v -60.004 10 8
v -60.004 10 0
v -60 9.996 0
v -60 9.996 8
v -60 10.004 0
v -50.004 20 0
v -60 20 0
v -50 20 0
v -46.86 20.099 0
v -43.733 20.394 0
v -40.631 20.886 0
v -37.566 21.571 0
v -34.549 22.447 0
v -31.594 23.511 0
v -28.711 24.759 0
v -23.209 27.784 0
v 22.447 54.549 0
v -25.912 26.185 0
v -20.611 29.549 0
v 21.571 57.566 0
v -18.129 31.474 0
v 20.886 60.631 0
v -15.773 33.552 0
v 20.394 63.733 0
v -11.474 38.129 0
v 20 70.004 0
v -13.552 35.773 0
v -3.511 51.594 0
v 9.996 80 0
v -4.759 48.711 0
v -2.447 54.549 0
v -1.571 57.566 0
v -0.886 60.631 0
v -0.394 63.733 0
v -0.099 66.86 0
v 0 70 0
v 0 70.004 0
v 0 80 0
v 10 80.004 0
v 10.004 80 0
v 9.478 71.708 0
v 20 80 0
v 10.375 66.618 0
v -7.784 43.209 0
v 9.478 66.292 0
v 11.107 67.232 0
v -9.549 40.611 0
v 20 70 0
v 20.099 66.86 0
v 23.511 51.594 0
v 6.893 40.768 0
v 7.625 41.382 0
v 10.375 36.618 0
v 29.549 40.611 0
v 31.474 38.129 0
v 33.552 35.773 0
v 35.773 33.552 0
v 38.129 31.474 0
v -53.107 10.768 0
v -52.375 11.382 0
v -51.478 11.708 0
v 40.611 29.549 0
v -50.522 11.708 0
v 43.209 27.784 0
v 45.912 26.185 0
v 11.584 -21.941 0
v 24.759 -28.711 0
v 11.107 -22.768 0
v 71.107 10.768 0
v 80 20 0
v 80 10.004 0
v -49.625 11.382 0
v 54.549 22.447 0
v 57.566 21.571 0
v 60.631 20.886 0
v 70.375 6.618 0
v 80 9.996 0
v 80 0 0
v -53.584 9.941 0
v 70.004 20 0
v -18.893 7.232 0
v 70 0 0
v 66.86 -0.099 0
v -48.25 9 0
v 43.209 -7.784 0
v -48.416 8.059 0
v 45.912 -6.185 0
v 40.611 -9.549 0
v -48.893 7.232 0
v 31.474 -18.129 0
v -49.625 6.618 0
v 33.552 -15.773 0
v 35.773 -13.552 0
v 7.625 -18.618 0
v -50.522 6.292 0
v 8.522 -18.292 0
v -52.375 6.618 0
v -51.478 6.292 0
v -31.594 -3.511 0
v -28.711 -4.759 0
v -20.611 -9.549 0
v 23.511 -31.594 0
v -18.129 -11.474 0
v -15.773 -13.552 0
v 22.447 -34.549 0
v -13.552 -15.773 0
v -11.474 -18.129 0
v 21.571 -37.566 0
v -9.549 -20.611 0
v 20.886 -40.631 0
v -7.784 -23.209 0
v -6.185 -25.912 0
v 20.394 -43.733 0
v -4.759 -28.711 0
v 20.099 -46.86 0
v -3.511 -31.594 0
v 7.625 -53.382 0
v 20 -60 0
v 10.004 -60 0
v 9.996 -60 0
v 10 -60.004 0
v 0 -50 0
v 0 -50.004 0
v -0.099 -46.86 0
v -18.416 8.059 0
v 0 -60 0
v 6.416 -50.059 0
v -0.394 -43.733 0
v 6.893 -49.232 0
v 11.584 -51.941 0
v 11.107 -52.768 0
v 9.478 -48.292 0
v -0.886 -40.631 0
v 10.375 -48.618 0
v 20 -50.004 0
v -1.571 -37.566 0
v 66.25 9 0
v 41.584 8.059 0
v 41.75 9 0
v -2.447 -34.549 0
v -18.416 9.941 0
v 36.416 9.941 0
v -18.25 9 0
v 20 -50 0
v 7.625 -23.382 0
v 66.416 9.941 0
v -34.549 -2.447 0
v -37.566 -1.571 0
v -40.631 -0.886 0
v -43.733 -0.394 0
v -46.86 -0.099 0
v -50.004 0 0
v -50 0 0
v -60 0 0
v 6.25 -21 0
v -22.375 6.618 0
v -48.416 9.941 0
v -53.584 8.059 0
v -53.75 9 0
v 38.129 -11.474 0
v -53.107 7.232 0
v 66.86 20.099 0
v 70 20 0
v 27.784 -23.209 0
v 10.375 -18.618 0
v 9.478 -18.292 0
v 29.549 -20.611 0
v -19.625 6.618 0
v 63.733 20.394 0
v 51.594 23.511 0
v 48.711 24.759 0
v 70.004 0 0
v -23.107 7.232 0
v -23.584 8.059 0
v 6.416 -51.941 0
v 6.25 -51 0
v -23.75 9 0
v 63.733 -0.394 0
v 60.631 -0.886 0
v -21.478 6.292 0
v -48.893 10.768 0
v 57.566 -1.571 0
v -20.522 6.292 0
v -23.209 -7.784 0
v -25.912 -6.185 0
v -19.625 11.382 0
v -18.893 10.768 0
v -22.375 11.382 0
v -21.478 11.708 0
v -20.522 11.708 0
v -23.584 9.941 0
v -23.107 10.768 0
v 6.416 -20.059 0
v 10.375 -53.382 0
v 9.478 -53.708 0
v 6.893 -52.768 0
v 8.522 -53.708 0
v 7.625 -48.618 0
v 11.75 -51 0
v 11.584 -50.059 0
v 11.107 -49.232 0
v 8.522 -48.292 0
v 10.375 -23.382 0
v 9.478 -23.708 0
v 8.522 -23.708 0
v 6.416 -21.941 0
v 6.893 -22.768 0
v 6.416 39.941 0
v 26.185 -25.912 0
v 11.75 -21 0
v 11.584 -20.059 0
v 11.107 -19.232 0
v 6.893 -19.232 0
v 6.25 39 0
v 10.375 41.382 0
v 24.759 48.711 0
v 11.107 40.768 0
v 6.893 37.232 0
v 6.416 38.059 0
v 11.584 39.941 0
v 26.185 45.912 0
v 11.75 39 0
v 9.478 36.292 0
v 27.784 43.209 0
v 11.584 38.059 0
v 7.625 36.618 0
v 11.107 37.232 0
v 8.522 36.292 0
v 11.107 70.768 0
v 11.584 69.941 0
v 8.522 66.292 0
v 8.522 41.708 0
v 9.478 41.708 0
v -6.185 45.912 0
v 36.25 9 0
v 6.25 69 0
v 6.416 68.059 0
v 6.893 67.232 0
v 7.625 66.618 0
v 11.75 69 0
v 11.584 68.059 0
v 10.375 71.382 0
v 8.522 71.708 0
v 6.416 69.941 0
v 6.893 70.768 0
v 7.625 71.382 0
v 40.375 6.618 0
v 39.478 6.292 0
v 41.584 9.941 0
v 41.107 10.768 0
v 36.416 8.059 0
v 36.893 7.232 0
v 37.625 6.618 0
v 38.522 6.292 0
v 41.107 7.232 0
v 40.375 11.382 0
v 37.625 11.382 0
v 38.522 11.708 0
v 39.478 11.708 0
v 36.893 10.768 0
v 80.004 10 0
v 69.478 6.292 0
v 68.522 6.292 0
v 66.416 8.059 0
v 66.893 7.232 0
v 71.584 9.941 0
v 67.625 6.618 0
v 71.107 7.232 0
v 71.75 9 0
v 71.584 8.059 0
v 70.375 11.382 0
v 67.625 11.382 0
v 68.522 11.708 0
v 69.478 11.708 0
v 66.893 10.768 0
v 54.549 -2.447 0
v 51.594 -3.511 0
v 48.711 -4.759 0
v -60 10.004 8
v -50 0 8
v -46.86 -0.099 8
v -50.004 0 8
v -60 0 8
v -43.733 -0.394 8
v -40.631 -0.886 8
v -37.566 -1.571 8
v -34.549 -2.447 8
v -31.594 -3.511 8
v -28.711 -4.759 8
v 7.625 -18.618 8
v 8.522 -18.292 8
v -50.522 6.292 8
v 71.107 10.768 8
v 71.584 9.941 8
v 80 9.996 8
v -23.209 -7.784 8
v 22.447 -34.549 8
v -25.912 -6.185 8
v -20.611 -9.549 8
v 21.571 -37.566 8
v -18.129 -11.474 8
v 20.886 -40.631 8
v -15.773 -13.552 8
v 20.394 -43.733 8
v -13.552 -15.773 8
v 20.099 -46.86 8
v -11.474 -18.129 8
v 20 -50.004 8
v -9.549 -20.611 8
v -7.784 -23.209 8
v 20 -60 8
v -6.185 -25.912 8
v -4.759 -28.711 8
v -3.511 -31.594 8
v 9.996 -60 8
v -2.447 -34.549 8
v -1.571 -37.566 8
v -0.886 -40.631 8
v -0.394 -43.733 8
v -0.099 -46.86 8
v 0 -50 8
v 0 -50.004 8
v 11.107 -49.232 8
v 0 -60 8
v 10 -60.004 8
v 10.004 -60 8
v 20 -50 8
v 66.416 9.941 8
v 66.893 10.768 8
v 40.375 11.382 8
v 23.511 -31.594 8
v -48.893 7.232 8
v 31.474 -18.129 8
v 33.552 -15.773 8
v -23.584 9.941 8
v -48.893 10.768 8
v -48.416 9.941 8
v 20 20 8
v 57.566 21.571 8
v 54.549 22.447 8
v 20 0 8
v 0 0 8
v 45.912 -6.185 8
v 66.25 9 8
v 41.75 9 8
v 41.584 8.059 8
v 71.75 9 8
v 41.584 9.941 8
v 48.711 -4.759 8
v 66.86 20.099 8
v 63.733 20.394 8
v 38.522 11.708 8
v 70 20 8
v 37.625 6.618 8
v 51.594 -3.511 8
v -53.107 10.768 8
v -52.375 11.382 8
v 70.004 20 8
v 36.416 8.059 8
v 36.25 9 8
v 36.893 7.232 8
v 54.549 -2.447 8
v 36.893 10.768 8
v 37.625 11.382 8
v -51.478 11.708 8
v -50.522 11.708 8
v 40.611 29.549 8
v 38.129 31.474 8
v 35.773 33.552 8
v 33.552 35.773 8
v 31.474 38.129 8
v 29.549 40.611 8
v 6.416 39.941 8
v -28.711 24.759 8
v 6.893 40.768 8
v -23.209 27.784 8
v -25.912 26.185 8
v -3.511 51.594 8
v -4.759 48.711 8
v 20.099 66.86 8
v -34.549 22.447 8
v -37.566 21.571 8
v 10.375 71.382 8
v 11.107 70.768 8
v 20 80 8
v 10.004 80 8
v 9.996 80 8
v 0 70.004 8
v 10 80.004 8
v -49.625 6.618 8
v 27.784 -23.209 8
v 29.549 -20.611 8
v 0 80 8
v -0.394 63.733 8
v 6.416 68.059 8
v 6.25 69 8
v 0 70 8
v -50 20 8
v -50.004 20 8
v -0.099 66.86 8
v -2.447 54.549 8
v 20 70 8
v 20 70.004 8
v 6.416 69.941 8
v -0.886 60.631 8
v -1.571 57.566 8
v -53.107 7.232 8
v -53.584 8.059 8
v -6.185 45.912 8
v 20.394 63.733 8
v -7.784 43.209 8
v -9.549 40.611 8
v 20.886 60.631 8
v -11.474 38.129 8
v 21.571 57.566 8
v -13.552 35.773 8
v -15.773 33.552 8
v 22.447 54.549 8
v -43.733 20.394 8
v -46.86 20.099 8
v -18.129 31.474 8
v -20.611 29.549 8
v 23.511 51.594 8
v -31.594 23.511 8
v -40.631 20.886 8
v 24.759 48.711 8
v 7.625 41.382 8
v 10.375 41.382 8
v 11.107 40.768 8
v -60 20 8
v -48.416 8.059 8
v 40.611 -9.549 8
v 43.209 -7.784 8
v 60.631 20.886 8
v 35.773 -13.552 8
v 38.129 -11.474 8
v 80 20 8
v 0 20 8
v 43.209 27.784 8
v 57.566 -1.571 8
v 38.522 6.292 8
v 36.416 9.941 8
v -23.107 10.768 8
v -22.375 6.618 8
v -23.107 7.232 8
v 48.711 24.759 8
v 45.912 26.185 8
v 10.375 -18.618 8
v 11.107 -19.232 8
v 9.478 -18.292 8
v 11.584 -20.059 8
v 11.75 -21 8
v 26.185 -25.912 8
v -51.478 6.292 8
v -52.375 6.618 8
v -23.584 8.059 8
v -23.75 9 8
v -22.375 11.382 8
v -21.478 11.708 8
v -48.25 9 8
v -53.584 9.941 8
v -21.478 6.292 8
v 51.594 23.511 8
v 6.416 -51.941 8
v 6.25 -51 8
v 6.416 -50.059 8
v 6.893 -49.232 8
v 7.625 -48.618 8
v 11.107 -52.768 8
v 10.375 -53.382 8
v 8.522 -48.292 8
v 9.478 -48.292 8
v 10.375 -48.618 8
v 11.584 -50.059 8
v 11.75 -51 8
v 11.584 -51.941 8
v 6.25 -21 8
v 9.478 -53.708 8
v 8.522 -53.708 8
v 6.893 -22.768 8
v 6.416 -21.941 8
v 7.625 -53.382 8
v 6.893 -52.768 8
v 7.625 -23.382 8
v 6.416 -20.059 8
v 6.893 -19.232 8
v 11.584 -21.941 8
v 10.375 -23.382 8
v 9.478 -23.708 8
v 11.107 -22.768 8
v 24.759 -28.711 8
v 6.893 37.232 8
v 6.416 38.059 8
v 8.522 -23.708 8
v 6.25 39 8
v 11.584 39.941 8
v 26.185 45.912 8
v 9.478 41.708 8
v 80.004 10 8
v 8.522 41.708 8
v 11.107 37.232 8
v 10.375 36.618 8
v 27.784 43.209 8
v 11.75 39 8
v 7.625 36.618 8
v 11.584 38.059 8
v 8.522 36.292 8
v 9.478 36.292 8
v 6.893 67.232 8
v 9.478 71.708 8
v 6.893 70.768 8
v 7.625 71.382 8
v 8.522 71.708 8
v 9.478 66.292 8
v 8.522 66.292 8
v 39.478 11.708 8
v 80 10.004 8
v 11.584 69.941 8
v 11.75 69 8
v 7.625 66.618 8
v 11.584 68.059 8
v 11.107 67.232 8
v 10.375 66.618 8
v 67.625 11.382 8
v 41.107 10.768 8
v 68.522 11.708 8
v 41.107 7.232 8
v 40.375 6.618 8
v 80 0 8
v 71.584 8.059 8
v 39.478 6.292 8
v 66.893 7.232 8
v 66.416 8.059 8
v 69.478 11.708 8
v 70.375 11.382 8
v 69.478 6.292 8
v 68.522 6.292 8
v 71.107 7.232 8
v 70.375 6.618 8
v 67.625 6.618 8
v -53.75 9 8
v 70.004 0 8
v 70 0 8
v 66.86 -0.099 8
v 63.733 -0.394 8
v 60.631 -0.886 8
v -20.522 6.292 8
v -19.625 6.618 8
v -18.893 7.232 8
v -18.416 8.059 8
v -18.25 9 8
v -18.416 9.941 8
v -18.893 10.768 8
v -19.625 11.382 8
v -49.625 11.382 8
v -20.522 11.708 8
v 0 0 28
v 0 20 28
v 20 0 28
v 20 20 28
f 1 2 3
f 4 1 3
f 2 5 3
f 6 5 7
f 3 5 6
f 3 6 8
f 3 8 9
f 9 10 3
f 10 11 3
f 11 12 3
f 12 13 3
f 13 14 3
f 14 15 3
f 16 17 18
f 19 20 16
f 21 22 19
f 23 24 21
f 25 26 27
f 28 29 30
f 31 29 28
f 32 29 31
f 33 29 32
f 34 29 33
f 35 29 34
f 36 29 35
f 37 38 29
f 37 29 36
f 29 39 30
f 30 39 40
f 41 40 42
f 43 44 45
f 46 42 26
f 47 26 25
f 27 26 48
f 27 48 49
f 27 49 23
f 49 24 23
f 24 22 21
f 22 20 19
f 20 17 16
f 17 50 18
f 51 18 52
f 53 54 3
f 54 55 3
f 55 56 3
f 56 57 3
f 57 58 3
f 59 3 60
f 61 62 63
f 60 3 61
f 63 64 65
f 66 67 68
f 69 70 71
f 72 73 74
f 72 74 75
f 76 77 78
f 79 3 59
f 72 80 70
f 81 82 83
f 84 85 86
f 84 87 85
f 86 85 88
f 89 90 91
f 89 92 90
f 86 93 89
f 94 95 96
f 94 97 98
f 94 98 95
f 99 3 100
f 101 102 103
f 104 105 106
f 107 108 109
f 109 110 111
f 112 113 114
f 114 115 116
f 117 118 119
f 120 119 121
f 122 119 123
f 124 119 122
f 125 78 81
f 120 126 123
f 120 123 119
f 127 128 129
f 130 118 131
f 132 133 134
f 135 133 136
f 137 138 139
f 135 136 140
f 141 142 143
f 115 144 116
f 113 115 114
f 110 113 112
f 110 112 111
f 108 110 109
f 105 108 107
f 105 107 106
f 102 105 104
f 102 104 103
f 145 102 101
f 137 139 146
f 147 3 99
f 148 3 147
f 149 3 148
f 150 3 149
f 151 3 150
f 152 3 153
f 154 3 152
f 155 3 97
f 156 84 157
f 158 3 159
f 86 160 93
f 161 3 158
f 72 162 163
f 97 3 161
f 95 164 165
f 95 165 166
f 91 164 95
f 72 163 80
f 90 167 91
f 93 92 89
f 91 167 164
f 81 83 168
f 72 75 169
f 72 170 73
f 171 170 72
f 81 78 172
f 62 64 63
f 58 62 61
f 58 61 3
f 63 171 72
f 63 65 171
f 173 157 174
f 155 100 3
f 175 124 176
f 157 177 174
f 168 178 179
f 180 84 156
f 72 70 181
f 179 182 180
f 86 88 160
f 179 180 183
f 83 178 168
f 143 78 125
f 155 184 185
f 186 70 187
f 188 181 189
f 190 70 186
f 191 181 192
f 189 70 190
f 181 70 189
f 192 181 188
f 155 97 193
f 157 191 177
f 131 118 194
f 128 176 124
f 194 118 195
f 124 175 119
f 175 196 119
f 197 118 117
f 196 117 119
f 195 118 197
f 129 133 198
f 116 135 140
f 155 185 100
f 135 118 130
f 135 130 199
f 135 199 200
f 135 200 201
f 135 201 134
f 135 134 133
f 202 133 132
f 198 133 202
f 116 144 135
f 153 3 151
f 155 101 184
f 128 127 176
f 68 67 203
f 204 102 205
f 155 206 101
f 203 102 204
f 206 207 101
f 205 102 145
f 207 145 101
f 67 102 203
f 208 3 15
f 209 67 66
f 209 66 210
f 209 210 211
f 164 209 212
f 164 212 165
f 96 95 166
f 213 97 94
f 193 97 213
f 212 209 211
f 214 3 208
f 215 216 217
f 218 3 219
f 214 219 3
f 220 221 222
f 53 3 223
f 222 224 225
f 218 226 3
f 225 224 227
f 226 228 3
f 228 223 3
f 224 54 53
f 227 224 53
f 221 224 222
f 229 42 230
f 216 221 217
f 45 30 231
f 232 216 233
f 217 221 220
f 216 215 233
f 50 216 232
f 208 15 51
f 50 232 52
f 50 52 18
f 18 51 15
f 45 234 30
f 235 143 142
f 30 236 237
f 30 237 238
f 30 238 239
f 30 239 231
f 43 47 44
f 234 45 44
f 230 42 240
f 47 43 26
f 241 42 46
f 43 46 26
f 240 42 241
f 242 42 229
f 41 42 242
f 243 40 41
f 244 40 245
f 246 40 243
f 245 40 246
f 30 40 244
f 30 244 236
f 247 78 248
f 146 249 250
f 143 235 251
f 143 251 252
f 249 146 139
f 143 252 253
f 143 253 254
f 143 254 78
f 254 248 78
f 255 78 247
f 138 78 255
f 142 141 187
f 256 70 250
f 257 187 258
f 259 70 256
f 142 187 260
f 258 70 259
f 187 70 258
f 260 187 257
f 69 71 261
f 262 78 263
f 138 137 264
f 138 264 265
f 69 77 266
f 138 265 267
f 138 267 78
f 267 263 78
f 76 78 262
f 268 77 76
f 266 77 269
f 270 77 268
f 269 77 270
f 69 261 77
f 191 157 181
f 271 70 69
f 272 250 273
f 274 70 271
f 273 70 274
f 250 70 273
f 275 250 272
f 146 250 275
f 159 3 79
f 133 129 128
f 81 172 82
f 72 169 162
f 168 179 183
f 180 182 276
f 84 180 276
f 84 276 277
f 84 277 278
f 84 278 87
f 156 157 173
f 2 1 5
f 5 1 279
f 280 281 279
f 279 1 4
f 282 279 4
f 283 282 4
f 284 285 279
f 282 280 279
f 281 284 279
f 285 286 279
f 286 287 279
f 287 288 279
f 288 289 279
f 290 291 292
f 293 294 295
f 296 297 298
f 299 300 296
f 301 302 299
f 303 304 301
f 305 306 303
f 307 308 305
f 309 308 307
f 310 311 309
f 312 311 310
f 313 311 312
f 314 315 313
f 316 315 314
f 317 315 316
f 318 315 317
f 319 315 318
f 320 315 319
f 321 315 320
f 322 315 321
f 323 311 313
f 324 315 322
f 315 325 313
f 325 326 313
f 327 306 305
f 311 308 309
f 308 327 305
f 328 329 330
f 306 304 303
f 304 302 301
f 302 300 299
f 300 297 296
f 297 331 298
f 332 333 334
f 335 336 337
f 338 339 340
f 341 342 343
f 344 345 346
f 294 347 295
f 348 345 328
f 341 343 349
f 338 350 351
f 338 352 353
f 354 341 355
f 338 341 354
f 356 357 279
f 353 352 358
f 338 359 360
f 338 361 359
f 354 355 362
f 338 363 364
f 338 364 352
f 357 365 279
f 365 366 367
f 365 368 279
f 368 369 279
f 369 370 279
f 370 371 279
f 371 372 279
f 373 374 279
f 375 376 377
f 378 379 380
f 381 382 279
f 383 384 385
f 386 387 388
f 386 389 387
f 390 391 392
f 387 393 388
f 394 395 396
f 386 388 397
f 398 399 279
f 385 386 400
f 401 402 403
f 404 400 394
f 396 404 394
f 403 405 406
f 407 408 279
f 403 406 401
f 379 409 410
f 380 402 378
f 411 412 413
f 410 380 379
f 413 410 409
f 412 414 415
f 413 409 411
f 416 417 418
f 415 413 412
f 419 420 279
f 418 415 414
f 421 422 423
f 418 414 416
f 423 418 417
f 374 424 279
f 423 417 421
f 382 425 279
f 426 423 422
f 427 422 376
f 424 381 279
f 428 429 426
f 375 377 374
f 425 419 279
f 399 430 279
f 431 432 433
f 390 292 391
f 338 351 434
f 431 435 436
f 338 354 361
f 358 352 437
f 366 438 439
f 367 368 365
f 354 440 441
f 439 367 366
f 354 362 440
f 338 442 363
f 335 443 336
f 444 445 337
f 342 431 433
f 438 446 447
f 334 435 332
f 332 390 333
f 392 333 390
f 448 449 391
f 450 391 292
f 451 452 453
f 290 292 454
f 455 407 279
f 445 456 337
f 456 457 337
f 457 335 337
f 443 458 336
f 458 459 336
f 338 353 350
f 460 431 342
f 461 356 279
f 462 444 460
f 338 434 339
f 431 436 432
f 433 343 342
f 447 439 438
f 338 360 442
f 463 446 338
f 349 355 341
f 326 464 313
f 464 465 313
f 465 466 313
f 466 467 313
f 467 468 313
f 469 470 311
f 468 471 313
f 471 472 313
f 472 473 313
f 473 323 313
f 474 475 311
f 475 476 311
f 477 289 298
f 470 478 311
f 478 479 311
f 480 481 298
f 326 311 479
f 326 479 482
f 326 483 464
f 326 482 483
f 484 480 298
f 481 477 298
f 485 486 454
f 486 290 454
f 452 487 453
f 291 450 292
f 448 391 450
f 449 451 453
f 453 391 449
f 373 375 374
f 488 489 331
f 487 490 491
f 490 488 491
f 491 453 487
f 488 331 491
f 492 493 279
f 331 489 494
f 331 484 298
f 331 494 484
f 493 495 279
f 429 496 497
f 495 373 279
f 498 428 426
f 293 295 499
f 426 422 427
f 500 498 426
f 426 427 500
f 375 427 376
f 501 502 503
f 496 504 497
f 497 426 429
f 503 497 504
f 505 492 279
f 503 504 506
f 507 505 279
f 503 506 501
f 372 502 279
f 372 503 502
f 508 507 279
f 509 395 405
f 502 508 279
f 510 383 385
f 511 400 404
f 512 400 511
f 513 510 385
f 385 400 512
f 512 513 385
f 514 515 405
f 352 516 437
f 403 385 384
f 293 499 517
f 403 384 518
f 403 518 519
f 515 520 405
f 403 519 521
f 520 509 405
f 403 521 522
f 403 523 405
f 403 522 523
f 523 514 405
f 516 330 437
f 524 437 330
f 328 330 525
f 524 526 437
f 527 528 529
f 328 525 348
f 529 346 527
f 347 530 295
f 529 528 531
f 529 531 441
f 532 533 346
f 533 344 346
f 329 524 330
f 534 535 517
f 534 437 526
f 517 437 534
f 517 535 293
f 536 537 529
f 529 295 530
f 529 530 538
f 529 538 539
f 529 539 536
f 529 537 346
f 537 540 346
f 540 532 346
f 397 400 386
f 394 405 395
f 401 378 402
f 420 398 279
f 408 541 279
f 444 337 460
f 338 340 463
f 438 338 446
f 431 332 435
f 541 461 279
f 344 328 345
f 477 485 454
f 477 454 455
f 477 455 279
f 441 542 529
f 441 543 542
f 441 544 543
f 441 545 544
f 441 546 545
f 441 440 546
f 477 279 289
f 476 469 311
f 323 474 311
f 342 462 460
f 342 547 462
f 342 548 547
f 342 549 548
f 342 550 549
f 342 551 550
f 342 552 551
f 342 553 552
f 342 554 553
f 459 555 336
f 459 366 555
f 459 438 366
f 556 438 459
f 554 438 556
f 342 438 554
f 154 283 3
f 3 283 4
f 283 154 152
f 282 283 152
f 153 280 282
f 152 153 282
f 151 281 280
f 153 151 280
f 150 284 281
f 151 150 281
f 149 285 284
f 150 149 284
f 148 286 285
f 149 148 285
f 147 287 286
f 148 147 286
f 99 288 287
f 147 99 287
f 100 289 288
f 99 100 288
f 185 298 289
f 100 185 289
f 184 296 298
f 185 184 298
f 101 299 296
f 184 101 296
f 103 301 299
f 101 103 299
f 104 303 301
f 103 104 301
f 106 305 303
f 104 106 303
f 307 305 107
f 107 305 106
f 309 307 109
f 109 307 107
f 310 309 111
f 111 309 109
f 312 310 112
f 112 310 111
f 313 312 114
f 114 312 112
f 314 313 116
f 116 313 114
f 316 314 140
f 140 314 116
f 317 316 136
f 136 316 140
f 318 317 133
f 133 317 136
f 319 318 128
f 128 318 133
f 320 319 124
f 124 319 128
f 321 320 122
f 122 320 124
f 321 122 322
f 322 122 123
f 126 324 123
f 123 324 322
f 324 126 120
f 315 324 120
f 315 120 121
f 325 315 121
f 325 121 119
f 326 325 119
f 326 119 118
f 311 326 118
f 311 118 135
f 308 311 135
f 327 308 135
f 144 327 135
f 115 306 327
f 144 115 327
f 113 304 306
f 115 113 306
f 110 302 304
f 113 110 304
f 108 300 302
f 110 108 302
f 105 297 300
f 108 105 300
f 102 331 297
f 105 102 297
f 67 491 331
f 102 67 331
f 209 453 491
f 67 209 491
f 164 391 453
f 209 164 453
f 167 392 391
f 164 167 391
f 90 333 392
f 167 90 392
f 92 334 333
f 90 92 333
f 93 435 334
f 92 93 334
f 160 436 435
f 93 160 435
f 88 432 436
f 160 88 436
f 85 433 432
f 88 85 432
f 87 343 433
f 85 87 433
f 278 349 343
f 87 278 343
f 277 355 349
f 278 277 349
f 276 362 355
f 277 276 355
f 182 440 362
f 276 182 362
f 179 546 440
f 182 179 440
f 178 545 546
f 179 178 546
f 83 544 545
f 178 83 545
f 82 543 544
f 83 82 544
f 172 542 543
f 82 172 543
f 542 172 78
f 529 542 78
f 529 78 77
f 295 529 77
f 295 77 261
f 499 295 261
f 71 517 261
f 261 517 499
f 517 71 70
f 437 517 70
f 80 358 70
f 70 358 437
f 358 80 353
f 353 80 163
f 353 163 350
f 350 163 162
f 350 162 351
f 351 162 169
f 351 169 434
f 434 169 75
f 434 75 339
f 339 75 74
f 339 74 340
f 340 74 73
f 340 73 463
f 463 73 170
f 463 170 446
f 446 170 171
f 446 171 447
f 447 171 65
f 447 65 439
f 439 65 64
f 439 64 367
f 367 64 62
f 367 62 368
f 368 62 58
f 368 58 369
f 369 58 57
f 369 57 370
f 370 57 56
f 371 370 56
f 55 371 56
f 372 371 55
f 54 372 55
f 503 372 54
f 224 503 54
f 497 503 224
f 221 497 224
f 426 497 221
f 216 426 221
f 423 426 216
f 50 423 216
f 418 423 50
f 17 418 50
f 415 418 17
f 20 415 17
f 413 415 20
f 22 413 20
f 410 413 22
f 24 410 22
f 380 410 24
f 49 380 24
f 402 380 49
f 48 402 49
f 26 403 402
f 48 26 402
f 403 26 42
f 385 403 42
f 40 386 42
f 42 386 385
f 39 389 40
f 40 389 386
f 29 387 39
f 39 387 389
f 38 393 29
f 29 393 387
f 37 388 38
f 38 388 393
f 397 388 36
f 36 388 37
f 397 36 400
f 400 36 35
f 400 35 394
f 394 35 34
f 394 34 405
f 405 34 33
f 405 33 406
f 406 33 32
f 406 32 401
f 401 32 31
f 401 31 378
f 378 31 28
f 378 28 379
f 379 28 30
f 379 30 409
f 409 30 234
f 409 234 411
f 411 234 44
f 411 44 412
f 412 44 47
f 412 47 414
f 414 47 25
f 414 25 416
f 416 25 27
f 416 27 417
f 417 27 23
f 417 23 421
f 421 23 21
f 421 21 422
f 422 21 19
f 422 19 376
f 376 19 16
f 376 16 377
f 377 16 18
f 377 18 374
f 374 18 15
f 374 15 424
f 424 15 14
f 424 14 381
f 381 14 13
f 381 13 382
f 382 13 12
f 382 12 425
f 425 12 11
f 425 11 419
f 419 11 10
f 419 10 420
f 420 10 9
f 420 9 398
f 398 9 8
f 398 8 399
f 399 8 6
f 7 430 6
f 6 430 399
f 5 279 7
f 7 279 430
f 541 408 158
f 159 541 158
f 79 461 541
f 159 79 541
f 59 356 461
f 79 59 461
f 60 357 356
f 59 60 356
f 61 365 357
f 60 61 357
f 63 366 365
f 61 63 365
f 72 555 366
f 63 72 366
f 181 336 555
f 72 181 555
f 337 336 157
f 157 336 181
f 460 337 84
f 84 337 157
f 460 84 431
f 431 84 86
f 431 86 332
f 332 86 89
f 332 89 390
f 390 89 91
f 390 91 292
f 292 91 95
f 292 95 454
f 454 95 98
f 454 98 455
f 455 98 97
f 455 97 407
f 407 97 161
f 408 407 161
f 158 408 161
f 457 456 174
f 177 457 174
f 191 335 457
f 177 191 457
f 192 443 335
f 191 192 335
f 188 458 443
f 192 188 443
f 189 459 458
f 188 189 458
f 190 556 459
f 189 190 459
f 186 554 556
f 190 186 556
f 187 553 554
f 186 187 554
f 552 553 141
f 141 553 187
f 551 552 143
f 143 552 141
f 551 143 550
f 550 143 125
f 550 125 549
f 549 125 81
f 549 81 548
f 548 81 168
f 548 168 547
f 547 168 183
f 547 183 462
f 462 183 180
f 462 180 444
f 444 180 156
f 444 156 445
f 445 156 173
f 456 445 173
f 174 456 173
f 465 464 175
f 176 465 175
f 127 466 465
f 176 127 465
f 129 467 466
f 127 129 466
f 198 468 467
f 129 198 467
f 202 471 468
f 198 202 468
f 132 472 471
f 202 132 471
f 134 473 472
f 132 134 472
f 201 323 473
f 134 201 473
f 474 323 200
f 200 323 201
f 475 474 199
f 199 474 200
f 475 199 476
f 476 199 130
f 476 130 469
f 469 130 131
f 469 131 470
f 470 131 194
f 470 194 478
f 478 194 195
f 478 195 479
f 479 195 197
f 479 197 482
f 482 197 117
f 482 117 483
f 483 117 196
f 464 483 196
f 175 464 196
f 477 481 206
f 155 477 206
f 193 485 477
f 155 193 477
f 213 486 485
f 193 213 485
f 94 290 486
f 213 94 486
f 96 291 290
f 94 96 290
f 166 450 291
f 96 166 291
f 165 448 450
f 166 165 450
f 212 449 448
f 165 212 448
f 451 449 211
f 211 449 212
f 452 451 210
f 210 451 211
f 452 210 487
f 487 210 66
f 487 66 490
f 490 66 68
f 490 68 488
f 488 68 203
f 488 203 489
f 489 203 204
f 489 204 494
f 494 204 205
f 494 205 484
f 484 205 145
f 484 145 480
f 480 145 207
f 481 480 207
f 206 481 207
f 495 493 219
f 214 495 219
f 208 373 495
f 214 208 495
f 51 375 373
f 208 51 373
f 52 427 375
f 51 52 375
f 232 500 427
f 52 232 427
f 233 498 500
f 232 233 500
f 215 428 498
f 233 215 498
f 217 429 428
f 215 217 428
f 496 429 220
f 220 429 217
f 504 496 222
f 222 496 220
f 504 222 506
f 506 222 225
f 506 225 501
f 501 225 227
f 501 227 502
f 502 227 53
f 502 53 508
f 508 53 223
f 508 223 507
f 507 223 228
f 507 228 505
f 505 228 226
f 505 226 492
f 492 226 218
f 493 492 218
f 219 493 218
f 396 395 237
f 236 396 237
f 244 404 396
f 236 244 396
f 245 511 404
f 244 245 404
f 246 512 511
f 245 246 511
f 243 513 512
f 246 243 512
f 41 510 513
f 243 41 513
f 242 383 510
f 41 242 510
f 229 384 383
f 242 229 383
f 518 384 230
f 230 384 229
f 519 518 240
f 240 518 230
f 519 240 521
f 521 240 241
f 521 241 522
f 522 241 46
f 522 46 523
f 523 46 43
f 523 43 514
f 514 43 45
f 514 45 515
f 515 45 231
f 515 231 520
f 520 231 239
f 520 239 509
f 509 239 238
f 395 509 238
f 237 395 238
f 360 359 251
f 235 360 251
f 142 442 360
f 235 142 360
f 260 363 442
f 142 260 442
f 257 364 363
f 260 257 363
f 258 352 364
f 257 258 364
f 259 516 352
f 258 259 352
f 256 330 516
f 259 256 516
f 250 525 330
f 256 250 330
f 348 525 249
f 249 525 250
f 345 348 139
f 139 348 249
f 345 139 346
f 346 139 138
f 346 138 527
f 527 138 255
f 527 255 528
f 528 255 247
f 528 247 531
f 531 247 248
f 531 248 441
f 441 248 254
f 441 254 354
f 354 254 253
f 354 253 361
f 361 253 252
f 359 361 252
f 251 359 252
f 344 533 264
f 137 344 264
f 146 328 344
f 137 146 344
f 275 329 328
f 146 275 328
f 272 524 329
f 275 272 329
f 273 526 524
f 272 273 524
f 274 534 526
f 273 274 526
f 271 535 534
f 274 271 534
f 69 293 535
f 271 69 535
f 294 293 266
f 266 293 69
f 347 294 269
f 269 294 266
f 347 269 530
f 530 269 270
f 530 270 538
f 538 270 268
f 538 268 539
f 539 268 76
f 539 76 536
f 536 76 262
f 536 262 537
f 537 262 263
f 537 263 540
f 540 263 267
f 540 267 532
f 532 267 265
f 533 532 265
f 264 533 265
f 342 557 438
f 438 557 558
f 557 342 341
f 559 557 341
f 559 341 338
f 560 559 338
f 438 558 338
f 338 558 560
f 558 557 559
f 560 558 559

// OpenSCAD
barwidth = 20;
width_ridge=4;
widthNema17=43;
nema17holeOffset =6;
nema17innerHole=25/2;
nema17Shaft=8/2;
motorThickNess=5;
offsetx =9;
offsety  =9;
barpositionz=30;
rodwidth =8.2;
nutwidth=16;

height = 90;
width = 60;

bearingod=15;
topbardistance=23;
bearinglength=26;
od624=13;
odpulley=12;
timingbeltthickness=1;

thickness=8;
spacing_bars = 50;
largeCircle = 70.0;
holeSize=5.5;
bardistance=50;
bearingoffset=2;


holes = [
	[-width,0,5],
	[-width/2,0,5],
	[+width,0,5],
	[+width/2,0,5],
	[0,-width,5],
	[0,-width/2,5],
	[0,+width,5],
	[0,+width/2,5],
];



difference() {
union() {

cube([barwidth,barwidth,thickness+barwidth],false);

translate([barwidth/2,barwidth/2,thickness/2])
rotate([0,0,45])
cube([barwidth*5-1,barwidth*5-1,thickness],true);

translate([-width,0,0])
cube([width*2+barwidth,barwidth,thickness],false);

translate([0,-width,0])
cube([barwidth,width*2+barwidth,thickness],false);

}

translate([barwidth/2+width,barwidth/2+width,0]) {
		cylinder(h=thickness+2,r=50, center = false, $fn=100);
	}

translate([barwidth/2-width,barwidth/2+width,0]) {
		cylinder(h=thickness+2,r=50, center = false, $fn=100);
	}


translate([barwidth/2+width,barwidth/2-width,0]) {
		cylinder(h=thickness+2,r=50, center = false, $fn=100);
	}


translate([barwidth/2-width,barwidth/2-width,0]) {
		cylinder(h=thickness+2,r=50, center = false, $fn=100);
	}


	for(i = holes) {
		translate([offsetx + i[0],offsety + i[1],0])
			cylinder(h=thickness+2,r=holeSize/2, center = false, $fs=1);
	}
}
